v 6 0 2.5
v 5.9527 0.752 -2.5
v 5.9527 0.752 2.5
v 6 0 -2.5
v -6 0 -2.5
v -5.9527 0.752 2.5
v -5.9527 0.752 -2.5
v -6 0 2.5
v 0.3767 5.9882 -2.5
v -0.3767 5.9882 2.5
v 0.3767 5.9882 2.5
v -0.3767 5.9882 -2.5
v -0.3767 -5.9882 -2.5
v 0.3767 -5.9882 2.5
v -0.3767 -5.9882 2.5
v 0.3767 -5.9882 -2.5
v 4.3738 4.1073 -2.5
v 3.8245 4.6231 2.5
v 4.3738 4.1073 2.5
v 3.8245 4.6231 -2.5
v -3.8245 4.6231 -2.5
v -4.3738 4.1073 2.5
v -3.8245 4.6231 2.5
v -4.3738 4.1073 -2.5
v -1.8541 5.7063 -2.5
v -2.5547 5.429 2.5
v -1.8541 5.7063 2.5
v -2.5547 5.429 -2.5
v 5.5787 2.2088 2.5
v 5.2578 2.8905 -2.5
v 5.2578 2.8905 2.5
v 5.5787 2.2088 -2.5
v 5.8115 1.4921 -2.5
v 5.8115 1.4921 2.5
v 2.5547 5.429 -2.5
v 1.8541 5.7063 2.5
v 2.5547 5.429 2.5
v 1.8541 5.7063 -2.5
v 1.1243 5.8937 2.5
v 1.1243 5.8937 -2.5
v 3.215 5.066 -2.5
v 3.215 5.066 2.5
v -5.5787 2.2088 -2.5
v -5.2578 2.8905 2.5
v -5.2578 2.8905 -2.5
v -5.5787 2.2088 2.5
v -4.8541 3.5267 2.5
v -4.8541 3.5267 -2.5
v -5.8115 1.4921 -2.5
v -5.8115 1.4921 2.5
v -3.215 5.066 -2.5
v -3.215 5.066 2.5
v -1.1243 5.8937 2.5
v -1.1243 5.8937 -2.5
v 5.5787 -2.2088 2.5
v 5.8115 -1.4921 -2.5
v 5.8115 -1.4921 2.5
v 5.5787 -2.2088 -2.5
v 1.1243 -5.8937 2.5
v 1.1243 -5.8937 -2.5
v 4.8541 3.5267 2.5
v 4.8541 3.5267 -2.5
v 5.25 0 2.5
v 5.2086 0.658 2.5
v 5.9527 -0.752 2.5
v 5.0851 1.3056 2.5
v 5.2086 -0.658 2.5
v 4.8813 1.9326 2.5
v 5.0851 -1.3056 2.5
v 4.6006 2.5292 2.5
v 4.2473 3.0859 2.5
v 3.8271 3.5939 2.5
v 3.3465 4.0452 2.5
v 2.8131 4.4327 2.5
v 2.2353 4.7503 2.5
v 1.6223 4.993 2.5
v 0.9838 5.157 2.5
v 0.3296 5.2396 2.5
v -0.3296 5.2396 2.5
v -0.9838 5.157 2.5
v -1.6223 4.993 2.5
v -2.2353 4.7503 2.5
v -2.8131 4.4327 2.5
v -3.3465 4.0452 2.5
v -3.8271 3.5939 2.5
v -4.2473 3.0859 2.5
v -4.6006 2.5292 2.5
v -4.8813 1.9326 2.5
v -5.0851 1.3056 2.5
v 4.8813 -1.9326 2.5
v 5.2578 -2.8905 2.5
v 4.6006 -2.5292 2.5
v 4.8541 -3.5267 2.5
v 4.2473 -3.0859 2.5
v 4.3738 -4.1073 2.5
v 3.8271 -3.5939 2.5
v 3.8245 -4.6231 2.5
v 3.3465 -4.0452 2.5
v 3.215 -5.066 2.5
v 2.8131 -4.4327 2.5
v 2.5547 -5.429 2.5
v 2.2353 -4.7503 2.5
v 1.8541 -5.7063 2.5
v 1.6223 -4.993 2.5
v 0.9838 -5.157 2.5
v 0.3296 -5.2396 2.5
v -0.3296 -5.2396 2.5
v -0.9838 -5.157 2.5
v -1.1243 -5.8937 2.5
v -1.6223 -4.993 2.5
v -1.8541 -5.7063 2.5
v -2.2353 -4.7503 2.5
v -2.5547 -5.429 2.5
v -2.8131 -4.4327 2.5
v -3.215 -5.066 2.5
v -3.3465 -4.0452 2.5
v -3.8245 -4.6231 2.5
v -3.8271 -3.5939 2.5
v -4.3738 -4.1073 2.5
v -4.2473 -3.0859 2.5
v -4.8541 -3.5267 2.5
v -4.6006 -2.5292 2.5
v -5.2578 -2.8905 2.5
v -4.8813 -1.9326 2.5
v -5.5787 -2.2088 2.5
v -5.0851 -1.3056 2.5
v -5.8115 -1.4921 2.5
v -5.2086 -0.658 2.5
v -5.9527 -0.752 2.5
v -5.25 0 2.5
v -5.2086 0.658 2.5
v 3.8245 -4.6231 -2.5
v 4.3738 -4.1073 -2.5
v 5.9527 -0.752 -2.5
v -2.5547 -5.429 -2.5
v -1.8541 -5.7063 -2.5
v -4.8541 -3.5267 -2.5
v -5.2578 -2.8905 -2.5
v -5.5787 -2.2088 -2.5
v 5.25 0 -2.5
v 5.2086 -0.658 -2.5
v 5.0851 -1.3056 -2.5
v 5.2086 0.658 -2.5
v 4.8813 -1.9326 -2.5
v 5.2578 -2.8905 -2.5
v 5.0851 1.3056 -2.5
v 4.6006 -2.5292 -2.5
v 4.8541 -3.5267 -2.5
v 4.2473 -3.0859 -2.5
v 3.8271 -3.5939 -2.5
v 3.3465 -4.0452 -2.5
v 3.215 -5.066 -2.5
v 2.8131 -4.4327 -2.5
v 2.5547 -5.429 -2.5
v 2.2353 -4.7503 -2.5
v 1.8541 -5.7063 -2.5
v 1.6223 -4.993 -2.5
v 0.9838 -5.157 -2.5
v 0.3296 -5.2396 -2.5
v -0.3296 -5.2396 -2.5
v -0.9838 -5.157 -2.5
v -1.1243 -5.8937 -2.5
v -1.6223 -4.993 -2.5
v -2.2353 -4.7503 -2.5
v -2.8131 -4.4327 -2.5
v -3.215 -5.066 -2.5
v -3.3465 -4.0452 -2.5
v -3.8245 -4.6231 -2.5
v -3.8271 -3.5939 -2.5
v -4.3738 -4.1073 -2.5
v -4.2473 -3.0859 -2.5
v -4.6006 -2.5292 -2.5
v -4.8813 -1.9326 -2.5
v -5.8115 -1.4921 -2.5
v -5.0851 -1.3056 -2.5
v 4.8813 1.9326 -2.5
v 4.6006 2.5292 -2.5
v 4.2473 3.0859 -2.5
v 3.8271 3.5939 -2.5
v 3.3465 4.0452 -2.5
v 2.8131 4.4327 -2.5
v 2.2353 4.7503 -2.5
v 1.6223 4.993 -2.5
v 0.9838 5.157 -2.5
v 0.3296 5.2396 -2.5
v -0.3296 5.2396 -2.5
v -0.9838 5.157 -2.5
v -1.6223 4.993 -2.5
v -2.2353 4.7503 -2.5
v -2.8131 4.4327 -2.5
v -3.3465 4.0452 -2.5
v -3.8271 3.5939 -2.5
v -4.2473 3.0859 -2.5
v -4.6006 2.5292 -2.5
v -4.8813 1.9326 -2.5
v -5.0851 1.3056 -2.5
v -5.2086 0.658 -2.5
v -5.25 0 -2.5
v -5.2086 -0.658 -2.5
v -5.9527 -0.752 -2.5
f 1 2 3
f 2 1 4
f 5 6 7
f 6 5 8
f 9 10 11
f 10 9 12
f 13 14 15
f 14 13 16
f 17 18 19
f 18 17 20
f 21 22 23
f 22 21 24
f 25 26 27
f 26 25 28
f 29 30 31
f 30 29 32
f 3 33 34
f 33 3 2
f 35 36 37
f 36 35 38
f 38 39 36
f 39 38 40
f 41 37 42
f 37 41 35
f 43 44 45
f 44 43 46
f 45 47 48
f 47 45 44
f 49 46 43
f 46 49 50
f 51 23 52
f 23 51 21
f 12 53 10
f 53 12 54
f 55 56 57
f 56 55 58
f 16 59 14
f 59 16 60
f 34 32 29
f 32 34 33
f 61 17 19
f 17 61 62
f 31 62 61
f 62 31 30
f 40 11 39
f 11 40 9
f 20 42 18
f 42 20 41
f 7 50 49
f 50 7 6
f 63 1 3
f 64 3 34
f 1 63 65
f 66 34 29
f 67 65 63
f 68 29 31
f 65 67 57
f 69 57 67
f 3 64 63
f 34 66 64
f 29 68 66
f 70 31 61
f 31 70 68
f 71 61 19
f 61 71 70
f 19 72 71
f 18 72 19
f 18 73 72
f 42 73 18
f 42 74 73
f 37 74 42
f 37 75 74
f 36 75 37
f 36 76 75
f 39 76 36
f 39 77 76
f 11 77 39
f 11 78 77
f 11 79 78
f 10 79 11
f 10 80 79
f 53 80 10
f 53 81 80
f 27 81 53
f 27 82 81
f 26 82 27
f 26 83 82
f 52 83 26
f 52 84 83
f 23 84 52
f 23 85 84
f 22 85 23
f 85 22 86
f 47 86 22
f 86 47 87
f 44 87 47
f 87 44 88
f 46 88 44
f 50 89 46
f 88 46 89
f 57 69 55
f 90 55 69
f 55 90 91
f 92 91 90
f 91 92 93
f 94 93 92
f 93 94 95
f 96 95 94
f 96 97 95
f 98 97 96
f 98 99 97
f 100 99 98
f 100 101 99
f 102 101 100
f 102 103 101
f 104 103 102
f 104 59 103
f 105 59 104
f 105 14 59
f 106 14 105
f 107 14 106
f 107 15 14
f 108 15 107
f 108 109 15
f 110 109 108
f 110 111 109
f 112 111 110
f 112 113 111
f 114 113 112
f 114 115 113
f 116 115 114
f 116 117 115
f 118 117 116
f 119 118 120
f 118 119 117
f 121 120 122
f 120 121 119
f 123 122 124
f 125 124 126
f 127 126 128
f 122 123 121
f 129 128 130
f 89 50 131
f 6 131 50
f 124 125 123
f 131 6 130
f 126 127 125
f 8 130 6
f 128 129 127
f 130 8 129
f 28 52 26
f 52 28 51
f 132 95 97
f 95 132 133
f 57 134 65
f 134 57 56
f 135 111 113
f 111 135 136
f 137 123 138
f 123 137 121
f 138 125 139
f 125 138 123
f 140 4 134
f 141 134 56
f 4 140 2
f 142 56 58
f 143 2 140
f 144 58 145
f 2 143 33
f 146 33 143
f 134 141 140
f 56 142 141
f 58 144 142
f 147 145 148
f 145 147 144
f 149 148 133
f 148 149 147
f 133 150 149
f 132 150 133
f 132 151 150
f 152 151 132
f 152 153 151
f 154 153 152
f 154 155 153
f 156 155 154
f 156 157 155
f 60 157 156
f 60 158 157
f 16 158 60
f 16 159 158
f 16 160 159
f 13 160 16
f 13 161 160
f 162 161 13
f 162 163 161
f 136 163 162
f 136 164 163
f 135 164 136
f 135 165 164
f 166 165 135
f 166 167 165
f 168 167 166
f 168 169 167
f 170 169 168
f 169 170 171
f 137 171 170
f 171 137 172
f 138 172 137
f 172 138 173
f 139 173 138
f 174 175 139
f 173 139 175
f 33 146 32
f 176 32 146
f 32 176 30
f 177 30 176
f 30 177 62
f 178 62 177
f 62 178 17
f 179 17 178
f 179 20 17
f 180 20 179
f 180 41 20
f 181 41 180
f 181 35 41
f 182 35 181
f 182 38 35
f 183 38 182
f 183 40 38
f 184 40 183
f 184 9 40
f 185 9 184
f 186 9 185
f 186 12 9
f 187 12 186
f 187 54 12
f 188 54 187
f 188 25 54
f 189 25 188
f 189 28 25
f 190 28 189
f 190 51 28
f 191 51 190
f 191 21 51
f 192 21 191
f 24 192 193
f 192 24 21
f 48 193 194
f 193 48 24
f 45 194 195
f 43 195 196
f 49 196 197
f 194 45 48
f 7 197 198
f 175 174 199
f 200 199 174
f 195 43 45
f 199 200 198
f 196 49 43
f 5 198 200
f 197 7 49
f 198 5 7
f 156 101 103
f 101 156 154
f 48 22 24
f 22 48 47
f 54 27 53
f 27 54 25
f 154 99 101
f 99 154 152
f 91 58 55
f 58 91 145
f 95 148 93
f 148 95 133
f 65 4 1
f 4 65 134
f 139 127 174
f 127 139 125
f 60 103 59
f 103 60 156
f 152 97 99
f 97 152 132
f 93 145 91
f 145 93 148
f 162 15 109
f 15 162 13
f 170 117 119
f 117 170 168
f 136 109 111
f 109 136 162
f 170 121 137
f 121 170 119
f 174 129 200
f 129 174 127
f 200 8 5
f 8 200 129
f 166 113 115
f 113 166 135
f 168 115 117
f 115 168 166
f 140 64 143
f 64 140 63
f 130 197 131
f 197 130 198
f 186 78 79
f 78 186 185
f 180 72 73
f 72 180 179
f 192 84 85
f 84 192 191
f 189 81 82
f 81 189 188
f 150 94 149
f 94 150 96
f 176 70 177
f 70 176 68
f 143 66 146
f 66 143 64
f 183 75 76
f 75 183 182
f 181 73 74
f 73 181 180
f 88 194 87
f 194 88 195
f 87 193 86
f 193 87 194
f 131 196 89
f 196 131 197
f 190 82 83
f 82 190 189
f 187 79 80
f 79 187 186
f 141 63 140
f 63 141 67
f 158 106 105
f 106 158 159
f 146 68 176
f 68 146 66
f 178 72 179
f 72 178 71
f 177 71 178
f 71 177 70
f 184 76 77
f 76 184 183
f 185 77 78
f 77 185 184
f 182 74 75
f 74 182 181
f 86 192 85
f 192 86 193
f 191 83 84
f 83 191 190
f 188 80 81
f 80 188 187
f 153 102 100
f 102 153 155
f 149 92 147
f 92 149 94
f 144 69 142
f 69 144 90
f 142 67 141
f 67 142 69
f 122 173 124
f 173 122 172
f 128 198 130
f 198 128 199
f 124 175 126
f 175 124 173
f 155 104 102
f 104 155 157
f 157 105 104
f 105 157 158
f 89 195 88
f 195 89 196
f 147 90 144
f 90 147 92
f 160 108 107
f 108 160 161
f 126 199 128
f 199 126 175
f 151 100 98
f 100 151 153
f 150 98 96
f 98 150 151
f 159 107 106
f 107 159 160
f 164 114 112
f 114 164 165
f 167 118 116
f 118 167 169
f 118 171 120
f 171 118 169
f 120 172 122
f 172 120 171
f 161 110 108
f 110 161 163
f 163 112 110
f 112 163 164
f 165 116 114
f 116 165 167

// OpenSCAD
$fn = 50;


difference() {
	union() {
		translate(v = [0, 0, -2.5000000000]) {
			cylinder(h = 5, r = 6.0000000000);
		}
	}
	union() {
		translate(v = [0, 0, -100.0000000000]) {
			cylinder(h = 200, r = 5.2500000000);
		}
	}
}
